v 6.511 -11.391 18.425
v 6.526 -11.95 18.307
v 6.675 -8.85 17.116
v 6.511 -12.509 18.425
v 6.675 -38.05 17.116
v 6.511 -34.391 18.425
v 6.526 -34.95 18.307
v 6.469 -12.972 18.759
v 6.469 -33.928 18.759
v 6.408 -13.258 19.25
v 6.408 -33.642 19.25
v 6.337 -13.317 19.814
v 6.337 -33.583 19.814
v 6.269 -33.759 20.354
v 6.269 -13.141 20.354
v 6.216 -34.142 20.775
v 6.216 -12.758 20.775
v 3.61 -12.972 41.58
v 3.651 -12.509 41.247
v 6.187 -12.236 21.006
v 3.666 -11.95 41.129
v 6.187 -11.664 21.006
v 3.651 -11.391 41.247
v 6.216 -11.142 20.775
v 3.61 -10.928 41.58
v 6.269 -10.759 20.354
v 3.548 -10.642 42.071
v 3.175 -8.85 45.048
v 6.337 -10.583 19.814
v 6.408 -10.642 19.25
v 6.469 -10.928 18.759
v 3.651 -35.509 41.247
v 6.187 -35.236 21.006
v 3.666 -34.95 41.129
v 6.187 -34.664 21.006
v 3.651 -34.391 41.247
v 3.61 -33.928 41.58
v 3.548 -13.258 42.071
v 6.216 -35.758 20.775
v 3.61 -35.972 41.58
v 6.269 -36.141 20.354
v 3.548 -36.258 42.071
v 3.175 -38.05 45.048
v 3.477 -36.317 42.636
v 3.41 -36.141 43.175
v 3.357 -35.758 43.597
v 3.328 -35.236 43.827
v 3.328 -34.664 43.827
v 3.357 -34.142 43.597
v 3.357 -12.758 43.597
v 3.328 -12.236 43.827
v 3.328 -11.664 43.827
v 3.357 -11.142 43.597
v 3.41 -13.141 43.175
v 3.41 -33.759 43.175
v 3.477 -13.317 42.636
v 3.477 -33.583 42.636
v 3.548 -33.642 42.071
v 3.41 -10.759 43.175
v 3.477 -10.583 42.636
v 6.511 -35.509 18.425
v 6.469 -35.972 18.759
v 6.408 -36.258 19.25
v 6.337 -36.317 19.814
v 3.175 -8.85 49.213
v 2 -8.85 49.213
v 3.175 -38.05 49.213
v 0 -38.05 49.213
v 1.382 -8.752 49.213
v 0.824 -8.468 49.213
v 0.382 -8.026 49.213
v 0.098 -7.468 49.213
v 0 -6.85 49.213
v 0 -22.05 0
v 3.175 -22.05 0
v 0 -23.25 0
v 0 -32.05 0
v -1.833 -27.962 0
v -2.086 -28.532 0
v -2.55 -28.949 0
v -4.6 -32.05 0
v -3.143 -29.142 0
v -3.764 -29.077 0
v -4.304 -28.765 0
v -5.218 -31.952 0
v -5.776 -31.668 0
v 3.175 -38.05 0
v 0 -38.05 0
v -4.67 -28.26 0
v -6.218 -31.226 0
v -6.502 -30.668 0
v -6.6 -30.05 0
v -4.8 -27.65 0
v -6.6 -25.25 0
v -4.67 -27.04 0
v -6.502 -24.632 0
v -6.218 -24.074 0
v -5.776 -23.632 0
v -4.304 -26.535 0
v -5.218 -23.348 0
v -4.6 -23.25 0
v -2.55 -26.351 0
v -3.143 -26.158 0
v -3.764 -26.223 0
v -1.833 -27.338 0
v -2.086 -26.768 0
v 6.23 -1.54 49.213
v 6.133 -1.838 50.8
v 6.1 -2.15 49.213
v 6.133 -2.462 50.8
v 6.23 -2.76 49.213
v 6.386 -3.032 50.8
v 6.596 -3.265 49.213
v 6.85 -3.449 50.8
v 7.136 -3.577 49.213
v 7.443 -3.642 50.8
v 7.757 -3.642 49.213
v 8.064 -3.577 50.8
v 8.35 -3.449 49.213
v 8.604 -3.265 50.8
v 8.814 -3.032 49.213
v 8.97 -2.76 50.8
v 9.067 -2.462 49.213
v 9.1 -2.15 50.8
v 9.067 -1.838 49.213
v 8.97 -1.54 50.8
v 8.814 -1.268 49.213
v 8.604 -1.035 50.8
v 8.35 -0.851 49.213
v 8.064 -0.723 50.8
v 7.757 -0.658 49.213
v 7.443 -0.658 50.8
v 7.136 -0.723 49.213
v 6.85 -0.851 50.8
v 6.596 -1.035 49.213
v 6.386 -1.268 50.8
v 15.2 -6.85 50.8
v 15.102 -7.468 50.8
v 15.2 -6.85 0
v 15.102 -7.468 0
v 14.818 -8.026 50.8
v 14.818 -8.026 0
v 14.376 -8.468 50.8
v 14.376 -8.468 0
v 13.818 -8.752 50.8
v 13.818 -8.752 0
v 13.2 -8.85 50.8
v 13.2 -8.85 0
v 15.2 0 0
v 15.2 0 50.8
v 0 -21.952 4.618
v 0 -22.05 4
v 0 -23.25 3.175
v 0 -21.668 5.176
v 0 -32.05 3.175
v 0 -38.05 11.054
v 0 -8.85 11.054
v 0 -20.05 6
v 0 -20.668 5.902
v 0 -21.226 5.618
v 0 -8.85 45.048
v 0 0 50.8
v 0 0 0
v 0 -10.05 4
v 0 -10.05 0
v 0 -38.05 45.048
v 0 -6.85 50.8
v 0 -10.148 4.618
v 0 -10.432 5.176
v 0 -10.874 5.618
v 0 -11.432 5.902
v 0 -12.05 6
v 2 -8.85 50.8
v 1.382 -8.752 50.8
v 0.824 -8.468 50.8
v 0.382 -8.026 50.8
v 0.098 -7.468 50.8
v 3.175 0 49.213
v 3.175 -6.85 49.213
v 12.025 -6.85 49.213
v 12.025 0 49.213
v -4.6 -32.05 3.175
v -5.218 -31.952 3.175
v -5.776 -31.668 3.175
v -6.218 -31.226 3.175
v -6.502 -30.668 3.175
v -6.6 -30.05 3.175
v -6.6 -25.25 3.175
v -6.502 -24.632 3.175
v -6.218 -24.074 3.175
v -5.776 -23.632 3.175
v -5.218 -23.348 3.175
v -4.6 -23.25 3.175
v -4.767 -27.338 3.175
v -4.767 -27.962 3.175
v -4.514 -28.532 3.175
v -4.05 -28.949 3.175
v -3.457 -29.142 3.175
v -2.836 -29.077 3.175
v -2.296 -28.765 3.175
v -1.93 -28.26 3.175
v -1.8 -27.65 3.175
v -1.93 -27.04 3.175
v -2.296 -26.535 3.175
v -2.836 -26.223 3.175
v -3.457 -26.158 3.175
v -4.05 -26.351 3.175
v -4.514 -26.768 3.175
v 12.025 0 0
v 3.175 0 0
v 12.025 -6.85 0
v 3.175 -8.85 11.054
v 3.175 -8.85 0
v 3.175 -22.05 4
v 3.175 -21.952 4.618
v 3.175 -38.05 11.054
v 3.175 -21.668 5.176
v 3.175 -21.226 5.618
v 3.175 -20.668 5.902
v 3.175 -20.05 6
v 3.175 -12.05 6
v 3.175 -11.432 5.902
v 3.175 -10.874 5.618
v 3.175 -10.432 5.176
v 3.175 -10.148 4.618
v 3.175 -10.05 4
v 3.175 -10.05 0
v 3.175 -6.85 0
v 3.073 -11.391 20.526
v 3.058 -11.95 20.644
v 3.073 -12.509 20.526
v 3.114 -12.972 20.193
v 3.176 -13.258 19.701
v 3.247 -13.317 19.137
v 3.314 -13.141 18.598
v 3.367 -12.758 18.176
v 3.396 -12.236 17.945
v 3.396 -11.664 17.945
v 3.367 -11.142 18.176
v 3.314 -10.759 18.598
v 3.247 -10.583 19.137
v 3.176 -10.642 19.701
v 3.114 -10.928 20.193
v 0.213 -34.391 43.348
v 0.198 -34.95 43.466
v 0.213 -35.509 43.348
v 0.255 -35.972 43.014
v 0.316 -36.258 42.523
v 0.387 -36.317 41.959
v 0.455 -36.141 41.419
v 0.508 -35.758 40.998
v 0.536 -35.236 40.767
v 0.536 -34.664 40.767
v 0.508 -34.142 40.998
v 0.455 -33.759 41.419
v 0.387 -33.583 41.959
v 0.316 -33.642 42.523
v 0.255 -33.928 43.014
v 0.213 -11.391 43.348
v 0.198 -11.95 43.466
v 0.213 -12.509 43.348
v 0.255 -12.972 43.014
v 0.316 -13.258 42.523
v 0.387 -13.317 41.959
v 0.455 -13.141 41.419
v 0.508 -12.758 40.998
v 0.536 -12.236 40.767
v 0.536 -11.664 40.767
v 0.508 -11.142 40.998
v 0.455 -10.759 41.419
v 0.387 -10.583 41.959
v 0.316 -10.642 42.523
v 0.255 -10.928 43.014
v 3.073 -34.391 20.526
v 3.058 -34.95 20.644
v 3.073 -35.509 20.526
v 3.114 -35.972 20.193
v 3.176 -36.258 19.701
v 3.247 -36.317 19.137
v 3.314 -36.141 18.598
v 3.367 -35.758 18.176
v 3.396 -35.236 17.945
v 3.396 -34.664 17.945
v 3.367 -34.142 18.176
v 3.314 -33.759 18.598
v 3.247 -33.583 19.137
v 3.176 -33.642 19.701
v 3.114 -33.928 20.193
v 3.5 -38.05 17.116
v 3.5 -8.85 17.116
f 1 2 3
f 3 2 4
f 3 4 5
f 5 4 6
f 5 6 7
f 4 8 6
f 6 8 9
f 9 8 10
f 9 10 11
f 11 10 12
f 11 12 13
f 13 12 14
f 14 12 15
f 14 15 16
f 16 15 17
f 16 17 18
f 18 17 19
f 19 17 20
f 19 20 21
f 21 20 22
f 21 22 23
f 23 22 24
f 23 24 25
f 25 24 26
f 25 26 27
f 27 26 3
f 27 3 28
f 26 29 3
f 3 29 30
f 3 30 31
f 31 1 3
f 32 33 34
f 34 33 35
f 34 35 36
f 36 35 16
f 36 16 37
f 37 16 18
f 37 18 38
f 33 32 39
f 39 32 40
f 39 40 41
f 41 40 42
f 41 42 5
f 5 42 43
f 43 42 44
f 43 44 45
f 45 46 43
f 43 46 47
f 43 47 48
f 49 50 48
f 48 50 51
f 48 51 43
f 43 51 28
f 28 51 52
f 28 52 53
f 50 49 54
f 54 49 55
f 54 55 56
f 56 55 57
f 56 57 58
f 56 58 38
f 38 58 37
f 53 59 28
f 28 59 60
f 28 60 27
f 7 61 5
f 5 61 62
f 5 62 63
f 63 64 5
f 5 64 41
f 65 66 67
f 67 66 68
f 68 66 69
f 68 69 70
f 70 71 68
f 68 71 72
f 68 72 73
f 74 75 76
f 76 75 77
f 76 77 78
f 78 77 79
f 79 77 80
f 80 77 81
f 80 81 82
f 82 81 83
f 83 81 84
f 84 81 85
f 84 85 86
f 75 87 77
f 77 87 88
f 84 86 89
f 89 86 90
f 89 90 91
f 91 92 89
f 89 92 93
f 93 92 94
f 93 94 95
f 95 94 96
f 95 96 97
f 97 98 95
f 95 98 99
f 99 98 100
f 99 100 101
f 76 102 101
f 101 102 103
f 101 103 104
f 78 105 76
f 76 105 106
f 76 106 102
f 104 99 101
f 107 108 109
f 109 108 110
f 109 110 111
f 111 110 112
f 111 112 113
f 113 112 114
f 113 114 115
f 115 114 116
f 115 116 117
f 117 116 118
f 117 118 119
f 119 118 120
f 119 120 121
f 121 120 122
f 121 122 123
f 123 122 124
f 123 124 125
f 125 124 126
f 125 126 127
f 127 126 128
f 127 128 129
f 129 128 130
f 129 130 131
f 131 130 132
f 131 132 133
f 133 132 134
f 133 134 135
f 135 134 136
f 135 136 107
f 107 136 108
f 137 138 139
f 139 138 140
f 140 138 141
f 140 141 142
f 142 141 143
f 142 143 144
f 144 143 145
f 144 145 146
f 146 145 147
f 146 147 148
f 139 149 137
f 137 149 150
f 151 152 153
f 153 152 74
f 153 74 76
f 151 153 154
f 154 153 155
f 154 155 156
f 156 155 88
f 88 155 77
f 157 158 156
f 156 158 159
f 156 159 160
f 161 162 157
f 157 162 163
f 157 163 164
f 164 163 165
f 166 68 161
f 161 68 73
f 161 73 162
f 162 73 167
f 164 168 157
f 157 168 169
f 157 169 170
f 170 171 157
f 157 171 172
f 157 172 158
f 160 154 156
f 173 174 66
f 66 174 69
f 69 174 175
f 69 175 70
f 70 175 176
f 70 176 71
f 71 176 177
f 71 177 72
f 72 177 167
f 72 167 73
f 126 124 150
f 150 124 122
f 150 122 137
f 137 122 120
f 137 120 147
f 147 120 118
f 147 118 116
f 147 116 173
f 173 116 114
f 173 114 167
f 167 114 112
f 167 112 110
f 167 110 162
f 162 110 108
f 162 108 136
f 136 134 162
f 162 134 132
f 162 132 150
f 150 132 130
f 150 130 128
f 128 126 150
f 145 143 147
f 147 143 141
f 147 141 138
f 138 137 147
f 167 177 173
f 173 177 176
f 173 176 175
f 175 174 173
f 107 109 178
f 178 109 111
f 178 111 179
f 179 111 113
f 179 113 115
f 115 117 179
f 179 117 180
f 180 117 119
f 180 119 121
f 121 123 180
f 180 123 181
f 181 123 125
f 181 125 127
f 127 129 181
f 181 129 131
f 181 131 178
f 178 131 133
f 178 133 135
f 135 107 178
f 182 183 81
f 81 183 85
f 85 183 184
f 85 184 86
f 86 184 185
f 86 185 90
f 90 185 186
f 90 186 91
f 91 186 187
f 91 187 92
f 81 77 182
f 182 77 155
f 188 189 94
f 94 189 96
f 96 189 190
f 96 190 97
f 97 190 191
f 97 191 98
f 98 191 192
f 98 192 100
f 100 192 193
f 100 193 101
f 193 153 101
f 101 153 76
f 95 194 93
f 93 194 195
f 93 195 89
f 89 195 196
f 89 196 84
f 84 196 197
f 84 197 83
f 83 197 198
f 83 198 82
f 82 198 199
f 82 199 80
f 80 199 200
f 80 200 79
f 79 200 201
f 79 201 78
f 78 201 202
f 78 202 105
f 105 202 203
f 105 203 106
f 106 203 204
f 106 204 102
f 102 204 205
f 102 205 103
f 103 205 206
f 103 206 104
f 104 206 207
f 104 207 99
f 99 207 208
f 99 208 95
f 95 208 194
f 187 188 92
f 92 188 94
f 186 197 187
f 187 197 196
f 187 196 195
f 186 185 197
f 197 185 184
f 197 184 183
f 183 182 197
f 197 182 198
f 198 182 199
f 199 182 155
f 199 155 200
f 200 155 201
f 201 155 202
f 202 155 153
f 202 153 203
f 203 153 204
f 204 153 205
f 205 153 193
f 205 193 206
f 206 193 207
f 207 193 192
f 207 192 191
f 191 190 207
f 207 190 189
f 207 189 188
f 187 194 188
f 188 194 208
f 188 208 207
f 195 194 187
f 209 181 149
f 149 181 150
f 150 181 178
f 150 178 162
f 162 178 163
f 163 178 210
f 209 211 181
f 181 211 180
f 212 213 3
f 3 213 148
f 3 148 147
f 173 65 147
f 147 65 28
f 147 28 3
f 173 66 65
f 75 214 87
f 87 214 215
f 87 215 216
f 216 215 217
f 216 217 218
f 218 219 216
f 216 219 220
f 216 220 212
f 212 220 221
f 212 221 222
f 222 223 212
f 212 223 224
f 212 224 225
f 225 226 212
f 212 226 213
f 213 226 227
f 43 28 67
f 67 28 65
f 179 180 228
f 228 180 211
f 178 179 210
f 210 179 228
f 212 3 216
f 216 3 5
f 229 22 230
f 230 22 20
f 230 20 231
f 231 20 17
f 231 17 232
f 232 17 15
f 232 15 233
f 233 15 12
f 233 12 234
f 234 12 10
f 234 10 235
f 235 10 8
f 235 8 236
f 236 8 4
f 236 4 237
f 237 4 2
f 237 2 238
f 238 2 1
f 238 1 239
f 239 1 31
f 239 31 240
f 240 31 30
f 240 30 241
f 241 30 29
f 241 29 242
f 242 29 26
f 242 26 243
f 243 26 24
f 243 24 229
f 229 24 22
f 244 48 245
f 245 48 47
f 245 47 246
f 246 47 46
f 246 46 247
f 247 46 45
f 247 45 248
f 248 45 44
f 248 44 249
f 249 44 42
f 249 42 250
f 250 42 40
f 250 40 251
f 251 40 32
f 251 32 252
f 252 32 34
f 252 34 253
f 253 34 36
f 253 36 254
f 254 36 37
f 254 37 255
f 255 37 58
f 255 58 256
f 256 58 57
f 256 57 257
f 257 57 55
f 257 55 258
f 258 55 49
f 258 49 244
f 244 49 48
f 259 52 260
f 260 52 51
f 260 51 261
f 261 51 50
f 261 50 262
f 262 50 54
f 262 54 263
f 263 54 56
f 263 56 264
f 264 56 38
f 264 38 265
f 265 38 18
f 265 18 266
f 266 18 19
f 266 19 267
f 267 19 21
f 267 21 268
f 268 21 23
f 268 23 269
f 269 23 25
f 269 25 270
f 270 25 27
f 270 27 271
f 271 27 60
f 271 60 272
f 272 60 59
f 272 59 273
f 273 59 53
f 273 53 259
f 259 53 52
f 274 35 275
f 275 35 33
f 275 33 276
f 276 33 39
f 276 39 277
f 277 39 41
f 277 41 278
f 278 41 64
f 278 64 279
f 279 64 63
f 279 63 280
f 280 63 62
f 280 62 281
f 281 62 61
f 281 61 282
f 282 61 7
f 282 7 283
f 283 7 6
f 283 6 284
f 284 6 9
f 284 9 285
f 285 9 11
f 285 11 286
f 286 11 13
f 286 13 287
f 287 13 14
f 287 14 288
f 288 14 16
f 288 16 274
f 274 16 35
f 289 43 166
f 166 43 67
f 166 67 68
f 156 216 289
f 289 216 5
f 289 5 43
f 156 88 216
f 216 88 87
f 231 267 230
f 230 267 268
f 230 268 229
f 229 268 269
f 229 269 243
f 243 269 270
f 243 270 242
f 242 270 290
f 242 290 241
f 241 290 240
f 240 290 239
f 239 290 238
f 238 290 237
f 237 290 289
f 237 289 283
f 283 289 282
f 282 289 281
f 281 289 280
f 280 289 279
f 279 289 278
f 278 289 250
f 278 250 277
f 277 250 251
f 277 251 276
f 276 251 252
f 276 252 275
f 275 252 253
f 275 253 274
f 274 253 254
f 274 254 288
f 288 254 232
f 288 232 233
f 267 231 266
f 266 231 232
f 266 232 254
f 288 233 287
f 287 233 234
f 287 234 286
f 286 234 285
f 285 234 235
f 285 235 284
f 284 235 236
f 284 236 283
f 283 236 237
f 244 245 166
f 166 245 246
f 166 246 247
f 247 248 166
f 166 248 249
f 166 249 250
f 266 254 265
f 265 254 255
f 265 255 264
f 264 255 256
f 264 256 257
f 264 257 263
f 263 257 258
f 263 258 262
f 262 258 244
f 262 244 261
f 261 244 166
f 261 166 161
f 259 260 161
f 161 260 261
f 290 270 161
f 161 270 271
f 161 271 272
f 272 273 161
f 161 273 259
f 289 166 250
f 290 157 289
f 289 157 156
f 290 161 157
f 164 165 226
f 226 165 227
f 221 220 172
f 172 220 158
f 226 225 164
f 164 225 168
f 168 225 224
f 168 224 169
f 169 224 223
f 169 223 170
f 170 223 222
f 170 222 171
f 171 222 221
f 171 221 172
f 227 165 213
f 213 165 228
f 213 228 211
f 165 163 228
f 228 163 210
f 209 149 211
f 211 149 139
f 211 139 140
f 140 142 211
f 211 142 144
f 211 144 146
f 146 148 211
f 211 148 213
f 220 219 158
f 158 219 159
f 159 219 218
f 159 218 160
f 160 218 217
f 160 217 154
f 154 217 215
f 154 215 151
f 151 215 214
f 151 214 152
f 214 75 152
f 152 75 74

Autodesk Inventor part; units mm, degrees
ref_plane "YZ Plane" through (0, 0, 0) normal (1, 0, 0) x (0, 1, 0)
ref_plane "XZ Plane" through (0, 0, 0) normal (0, 1, 0) x (-1, 0, 0)
ref_plane "XY Plane" through (0, 0, 0) normal (0, 0, 1) x (1, 0, 0)
sketch "Sketch1" plane through (0, 0, 0) normal (0, 0, 1) x (1, 0, 0)
  line L0 (0, 0) -> (0, -38.05)
  line L1 (0, -38.05) -> (3.175, -38.05)
  line L2 (3.175, -38.05) -> (3.175, 0)
  line L3 (3.175, 0) -> (0, 0)
  line L4 (3.175, 0) -> (3.175, -6.85)
  line L5 (3.175, -6.85) -> (12.025, -6.85)
  line L6 (12.025, -6.85) -> (12.025, 0)
  line L7 (12.025, 0) -> (15.2, 0)
  line L8 (15.2, 0) -> (15.2, -6.85)
  line L9 (15.2, -6.85) -> (15.2, -8.85)
  line L10 (15.2, -8.85) -> (3.175, -8.85)
  line L11 (0, -38.05) -> (0, -31.2)
  dimension "d0" = 38.05
  dimension "d1" = 3.175
  dimension "d2" = 6.85
  dimension "d3" = 8.85
  dimension "d4" = 3.175
  dimension "d5" = 2
extrude "Extrusion1" add sketch "Sketch1" along normal blind 49.213
sketch "Sketch2" plane through (0, 0, 0) normal (0, 0, -1) x (-1, 0, 0)
  line L0 (0, -38.05) -> (-3.175, -38.05) projected
  line L1 (0, -38.05) -> (0, -32.05)
  line L2 (0, 0) -> (0, -38.05) projected
  line L3 (0, -32.05) -> (0, -23.25)
  line L4 (0, -23.25) -> (6.6, -23.25)
  line L5 (6.6, -23.25) -> (6.6, -32.05)
  line L6 (6.6, -32.05) -> (0, -32.05)
  dimension "d12" = 6
  dimension "d13" = 8.8
  dimension "d14" = 6.6
extrude "Extrusion2" add sketch "Sketch2" against normal blind 3.175
sketch "Sketch3" plane through (0, 0, 3.175) normal (0, 0, 1) x (1, 0, 0)
  line L0 (0, -23.25) -> (0, -32.05) projected
  line L1 (0, -23.25) -> (-3.3, -23.25)
  line L2 (0, -23.25) -> (-6.6, -23.25) projected
  line L3 (-3.3, -23.25) -> (-3.3, -27.65)
  point P0 (0, 0)
  dimension "d17" = 4.4
hole "Hole1" at (-3.3, -27.65, 3.175) direction (0, 0, -1) diameter 3 end through all
fillet "Fillet1" radius 2 2 edges at (-6.6, -23.25, 1.5875) (-6.6, -32.05, 1.5875)
sketch "Sketch4" plane through (0, 0, 49.213) normal (0, 0, 1) x (1, 0, 0)
  line L0 (3.175, 0) -> (0, 0) projected
  line L1 (3.175, -8.85) -> (15.2, -8.85) projected
  line L2 (0, 0) -> (15.2, 0)
  line L3 (15.2, 0) -> (15.2, -8.85)
  line L4 (15.2, -8.85) -> (0, -8.85)
  line L5 (0, -8.85) -> (0, 0)
extrude "Extrusion3" add sketch "Sketch4" along normal blind 1.5875
sketch "Sketch5" plane through (0, 0, 50.8005) normal (0, 0, 1) x (1, 0, 0)
  line L0 (3.175, 0) -> (0, 0) projected
  line L1 (0, 0) -> (3.175, 0)
  line L2 (3.175, 0) -> (12.025, 0) projected
  line L3 (3.175, 0) -> (7.6, 0)
  line L4 (7.6, 0) -> (7.6, -3.425)
  dimension "d28" = 3.425
hole "Hole2" at (7.6, -3.425, 50.8005) direction (0, 0, -1) diameter 3 end through all
fillet "Fillet2" radius 2 2 edges at (0, -8.85, 50.0068) (15.2, -8.85, 25.4003)
sketch "Sketch6" plane through (0, -38.05, 0) normal (-1, 0, 0) x (0, 0, 1)
  line L0 (0, 0) -> (0, 29.2) projected
  line L1 (0, 0) -> (0, 28.2)
  line L2 (0, 28.2) -> (28.2, 28.2)
  line L3 (28.2, 28.2) -> (28.2, 0)
  line L4 (0, 0) -> (49.213, 0) projected
  line L5 (0, 0) -> (0, 14.1)
  line L6 (0, 12.8) -> (0, 14.8) projected
  line L7 (0, 14.1) -> (14.1, 14.1)
  line L8 (14.1, 14.1) -> (2.6, 14.1)
  line L9 (2.6, 14.1) -> (2.6, 2.6)
  line L10 (0, 12.8) -> (3.175, 12.8) projected
  line L11 (2.6, 2.6) -> (25.6, 2.6)
  line L12 (25.6, 2.6) -> (25.6, 25.6)
  line L13 (25.6, 25.6) -> (2.6, 25.6)
  line L14 (2.6, 25.6) -> (2.6, 2.6)
  point P0 (0, 38.05)
  dimension "d37" = 28.2
  dimension "d38" = 28.2
  dimension "d39" = 11.5
  dimension "d40" = 11.5
  dimension "d41" = 90
  dimension "d42" = 23
  dimension "d43" = 23
hole "Hole3" at (0, -35.45, 2.6) at (0, -35.45, 25.6) at (0, -12.45, 25.6) at (0, -12.45, 2.6) direction (1, 0, 0) diameter 2.5 end through all
delete faces "Delete1" heal yes whole lump no faces at (7.7207, -4.9201, 50.2713)
sketch "Sketch7" plane through (0, 0, 50.8005) normal (0, 0, 1) x (1, 0, 0)
  line L0 (15.2, -6.85) -> (15.2, 0) projected
  line L1 (15.2, 0) -> (0, 0) projected
  line L2 (15.2, 0) -> (0, 0)
  line L3 (0, 0) -> (7.6, 0)
  line L4 (7.6, 0) -> (7.6, -2.15)
  dimension "d51" = 2.15
hole "Hole4" at (7.6, -2.15, 50.8005) direction (0, 0, -1) diameter 3 depth 3.5
sketch "Sketch8" plane through (0, 0, 49.213) normal (0, 0, 1) x (1, 0, 0)
  line L0 (0, -38.05) -> (3.175, -38.05) projected
  line L1 (3.175, -38.05) -> (0, -38.05)
  line L2 (3.175, -23.45) -> (0, -23.45)
  line L3 (0, -23.45) -> (0, -17.45)
  line L4 (0, -17.45) -> (3.175, -17.45)
  line L5 (3.175, -17.45) -> (3.175, -23.45)
  line L6 (3.175, -23.45) -> (0, -23.45)
  line L7 (0, -23.45) -> (0, -29.45)
  line L8 (0, -29.45) -> (3.175, -29.45)
  line L9 (3.175, -29.45) -> (3.175, -23.45)
  point P0 (0, 0)
  point P1 (3.175, -8.85)
  dimension "d59" = 6
  dimension "d60" = 6
extrude "Extrusion4" cut sketch "Sketch8" against normal blind 3.175
fillet "Fillet3" radius 2 2 edges at (1.5875, -17.45, 46.038) (1.5875, -29.45, 46.038)
sketch "Sketch9" plane through (0, 0, 46.038) normal (0, 0, 1) x (1, 0, 0)
  line L0 (3.175, -17.45) -> (0, -17.45) projected
  line L1 (0, -29.45) -> (3.175, -29.45) projected
  line L2 (0, -17.45) -> (3.175, -17.45)
  line L3 (3.175, -17.45) -> (3.175, -29.45)
  line L4 (3.175, -29.45) -> (0, -29.45)
  line L5 (0, -29.45) -> (0, -17.45)
  point P0 (0, 0)
extrude "Extrusion5" add sketch "Sketch9" along normal blind 3.175
delete faces "Delete Face1" heal yes whole lump no faces at (1.0583, -12.3494, 3.8459) (1.0583, -12.3494, 26.8459) (1.0583, -35.3494, 26.8459) (1.0583, -35.3494, 3.8459)
sketch "Sketch10" plane through (0, -38.05, 0) normal (0, -1, 0) x (1, 0, 0)
  line L0 (3.175, 0) -> (3.175, 49.213) projected
  line L1 (3.175, 49.213) -> (3.175, 45.048)
  line L2 (3.175, 45.048) -> (6.6749, 17.1164)
  line L3 (6.6749, 17.1164) -> (3.175, 16.6779)
  line L4 (3.175, 16.6779) -> (3.175, 45.048)
  point P0 (0, 0)
  dimension "d66" = 4.165
  dimension "d67" = 28.15
  dimension "d68" = 172.858
extrude "Extrusion6" add sketch "Sketch10" against normal up to next
sketch "Sketch11" plane through (3.175, -38.05, 45.048) normal (0.9922411, 0, 0.1243289) x (0.1243289, 0, -0.9922411)
  line L0 (44.6985, 29.2) -> (28.15, 29.2) projected
  line L1 (0, 0) -> (28.15, 29.2)
  line L2 (0, 0) -> (0, 29.2) projected
  line L3 (28.15, 0) -> (28.15, 29.2) projected
  line L4 (0, 29.2) -> (28.15, 0)
  line L5 (14.075, 14.6) -> (2.575, 14.6)
  line L6 (2.575, 14.6) -> (2.575, 26.1)
  line L7 (2.575, 26.1) -> (14.075, 26.1)
  line L8 (14.075, 26.1) -> (14.075, 14.6)
  line L9 (14.075, 14.6) -> (2.575, 14.6)
  line L10 (2.575, 14.6) -> (2.575, 3.1)
  line L11 (2.575, 3.1) -> (14.075, 3.1)
  line L12 (14.075, 3.1) -> (14.075, 14.6)
  line L13 (14.075, 14.6) -> (25.575, 14.6)
  line L14 (25.575, 14.6) -> (25.575, 3.1)
  line L15 (25.575, 3.1) -> (14.075, 3.1)
  line L16 (14.075, 3.1) -> (14.075, 14.6)
  line L17 (14.075, 14.6) -> (25.575, 14.6)
  line L18 (25.575, 14.6) -> (25.575, 26.1)
  line L19 (25.575, 26.1) -> (14.075, 26.1)
  line L20 (14.075, 26.1) -> (14.075, 14.6)
  point P0 (44.3037, 38.05)
  dimension "d71" = 11.5
  dimension "d72" = 11.5
  dimension "d73" = 11.5
  dimension "d74" = 11.5
  dimension "d75" = 11.5
  dimension "d76" = 11.5
  dimension "d77" = 11.5
  dimension "d78" = 11.5
hole "Hole5" at (3.4951, -34.95, 42.493) at (3.4951, -11.95, 42.493) at (6.3547, -11.95, 19.6714) at (6.3547, -34.95, 19.6714) direction (-0.9922411, 0, -0.1243289) diameter 2.75 end through all
sketch "Sketch12" plane through (0, -38.05, 0) normal (0, -1, 0) x (1, 0, 0)
  line L0 (3.175, 45.048) -> (6.6749, 17.1164) projected
  line L1 (6.6749, 17.1164) -> (3.175, 11.0545)
  line L2 (3.175, 49.213) -> (3.175, 0) projected
  line L3 (6.6749, 17.1164) -> (13.6746, 17.1164) construction
  line L4 (3.175, 11.0545) -> (3.175, 16.6739)
  line L5 (6.6749, 17.1164) -> (3.175, 16.6779) projected
  line L6 (6.6749, 17.1164) -> (3.175, 16.6779)
  point P0 (0, 0)
  dimension "d86" = 120
extrude "Extrusion7" add sketch "Sketch12" against normal up to next contours L1 L2 L5
sketch "Sketch13" plane through (0, -38.05, 0) normal (0, -1, 0) x (1, 0, 0)
  line L0 (3.175, 45.048) -> (6.6749, 17.1164) projected
  line L1 (3.175, 45.048) -> (0, 45.048)
  line L2 (0, 0) -> (0, 50.8005) projected
  line L3 (6.6749, 17.1164) -> (0, 17.1164)
  line L4 (6.6749, 17.1164) -> (3.4999, 17.1164)
  line L5 (3.4999, 17.1164) -> (0, 45.048)
  line L6 (3.4999, 17.1164) -> (0, 11.0545)
  line L7 (3.4999, 17.1164) -> (10.4996, 17.1164) construction
  line L8 (0, 11.0545) -> (0, 45.048)
  dimension "d89" = 3.175
  dimension "d90" = 120
extrude "Extrusion8" cut sketch "Sketch13" against normal up to surface (29.2 mm away) contours L5 L3 L2 | L6 L2 L3
sketch "Sketch14" plane through (3.175, -38.05, 0) normal (1, 0, 0) x (0, 0, -1)
  point P0 (0, 38.05)
sketch "Sketch15" plane through (3.175, -38.05, 0) normal (1, 0, 0) x (0, 0, -1)
  line L0 (0, 29.2) -> (-11.0545, 29.2) projected
  line L1 (0, 14.8) -> (-3.175, 14.8) projected
  line L2 (0, 29.2) -> (0, 14.8)
  line L3 (0, 14.8) -> (0, 22)
  line L4 (0, 0) -> (0, 29.2) projected
  line L5 (0, 22) -> (0, 28)
  line L6 (0, 28) -> (-6, 28)
  line L7 (-6, 28) -> (-6, 16)
  line L8 (-6, 16) -> (0, 16)
  line L9 (0, 16) -> (0, 28)
  point P0 (0, 38.05)
  dimension "d93" = 7.2
  dimension "d94" = 6
  dimension "d95" = 6
  dimension "d96" = 12
extrude "Extrusion9" cut sketch "Sketch15" against normal up to next
fillet "Fillet4" radius 2 2 edges at (1.5875, -22.05, 6) (1.5875, -10.05, 6)
properties part number "Yaw Motor Mount_v2"
